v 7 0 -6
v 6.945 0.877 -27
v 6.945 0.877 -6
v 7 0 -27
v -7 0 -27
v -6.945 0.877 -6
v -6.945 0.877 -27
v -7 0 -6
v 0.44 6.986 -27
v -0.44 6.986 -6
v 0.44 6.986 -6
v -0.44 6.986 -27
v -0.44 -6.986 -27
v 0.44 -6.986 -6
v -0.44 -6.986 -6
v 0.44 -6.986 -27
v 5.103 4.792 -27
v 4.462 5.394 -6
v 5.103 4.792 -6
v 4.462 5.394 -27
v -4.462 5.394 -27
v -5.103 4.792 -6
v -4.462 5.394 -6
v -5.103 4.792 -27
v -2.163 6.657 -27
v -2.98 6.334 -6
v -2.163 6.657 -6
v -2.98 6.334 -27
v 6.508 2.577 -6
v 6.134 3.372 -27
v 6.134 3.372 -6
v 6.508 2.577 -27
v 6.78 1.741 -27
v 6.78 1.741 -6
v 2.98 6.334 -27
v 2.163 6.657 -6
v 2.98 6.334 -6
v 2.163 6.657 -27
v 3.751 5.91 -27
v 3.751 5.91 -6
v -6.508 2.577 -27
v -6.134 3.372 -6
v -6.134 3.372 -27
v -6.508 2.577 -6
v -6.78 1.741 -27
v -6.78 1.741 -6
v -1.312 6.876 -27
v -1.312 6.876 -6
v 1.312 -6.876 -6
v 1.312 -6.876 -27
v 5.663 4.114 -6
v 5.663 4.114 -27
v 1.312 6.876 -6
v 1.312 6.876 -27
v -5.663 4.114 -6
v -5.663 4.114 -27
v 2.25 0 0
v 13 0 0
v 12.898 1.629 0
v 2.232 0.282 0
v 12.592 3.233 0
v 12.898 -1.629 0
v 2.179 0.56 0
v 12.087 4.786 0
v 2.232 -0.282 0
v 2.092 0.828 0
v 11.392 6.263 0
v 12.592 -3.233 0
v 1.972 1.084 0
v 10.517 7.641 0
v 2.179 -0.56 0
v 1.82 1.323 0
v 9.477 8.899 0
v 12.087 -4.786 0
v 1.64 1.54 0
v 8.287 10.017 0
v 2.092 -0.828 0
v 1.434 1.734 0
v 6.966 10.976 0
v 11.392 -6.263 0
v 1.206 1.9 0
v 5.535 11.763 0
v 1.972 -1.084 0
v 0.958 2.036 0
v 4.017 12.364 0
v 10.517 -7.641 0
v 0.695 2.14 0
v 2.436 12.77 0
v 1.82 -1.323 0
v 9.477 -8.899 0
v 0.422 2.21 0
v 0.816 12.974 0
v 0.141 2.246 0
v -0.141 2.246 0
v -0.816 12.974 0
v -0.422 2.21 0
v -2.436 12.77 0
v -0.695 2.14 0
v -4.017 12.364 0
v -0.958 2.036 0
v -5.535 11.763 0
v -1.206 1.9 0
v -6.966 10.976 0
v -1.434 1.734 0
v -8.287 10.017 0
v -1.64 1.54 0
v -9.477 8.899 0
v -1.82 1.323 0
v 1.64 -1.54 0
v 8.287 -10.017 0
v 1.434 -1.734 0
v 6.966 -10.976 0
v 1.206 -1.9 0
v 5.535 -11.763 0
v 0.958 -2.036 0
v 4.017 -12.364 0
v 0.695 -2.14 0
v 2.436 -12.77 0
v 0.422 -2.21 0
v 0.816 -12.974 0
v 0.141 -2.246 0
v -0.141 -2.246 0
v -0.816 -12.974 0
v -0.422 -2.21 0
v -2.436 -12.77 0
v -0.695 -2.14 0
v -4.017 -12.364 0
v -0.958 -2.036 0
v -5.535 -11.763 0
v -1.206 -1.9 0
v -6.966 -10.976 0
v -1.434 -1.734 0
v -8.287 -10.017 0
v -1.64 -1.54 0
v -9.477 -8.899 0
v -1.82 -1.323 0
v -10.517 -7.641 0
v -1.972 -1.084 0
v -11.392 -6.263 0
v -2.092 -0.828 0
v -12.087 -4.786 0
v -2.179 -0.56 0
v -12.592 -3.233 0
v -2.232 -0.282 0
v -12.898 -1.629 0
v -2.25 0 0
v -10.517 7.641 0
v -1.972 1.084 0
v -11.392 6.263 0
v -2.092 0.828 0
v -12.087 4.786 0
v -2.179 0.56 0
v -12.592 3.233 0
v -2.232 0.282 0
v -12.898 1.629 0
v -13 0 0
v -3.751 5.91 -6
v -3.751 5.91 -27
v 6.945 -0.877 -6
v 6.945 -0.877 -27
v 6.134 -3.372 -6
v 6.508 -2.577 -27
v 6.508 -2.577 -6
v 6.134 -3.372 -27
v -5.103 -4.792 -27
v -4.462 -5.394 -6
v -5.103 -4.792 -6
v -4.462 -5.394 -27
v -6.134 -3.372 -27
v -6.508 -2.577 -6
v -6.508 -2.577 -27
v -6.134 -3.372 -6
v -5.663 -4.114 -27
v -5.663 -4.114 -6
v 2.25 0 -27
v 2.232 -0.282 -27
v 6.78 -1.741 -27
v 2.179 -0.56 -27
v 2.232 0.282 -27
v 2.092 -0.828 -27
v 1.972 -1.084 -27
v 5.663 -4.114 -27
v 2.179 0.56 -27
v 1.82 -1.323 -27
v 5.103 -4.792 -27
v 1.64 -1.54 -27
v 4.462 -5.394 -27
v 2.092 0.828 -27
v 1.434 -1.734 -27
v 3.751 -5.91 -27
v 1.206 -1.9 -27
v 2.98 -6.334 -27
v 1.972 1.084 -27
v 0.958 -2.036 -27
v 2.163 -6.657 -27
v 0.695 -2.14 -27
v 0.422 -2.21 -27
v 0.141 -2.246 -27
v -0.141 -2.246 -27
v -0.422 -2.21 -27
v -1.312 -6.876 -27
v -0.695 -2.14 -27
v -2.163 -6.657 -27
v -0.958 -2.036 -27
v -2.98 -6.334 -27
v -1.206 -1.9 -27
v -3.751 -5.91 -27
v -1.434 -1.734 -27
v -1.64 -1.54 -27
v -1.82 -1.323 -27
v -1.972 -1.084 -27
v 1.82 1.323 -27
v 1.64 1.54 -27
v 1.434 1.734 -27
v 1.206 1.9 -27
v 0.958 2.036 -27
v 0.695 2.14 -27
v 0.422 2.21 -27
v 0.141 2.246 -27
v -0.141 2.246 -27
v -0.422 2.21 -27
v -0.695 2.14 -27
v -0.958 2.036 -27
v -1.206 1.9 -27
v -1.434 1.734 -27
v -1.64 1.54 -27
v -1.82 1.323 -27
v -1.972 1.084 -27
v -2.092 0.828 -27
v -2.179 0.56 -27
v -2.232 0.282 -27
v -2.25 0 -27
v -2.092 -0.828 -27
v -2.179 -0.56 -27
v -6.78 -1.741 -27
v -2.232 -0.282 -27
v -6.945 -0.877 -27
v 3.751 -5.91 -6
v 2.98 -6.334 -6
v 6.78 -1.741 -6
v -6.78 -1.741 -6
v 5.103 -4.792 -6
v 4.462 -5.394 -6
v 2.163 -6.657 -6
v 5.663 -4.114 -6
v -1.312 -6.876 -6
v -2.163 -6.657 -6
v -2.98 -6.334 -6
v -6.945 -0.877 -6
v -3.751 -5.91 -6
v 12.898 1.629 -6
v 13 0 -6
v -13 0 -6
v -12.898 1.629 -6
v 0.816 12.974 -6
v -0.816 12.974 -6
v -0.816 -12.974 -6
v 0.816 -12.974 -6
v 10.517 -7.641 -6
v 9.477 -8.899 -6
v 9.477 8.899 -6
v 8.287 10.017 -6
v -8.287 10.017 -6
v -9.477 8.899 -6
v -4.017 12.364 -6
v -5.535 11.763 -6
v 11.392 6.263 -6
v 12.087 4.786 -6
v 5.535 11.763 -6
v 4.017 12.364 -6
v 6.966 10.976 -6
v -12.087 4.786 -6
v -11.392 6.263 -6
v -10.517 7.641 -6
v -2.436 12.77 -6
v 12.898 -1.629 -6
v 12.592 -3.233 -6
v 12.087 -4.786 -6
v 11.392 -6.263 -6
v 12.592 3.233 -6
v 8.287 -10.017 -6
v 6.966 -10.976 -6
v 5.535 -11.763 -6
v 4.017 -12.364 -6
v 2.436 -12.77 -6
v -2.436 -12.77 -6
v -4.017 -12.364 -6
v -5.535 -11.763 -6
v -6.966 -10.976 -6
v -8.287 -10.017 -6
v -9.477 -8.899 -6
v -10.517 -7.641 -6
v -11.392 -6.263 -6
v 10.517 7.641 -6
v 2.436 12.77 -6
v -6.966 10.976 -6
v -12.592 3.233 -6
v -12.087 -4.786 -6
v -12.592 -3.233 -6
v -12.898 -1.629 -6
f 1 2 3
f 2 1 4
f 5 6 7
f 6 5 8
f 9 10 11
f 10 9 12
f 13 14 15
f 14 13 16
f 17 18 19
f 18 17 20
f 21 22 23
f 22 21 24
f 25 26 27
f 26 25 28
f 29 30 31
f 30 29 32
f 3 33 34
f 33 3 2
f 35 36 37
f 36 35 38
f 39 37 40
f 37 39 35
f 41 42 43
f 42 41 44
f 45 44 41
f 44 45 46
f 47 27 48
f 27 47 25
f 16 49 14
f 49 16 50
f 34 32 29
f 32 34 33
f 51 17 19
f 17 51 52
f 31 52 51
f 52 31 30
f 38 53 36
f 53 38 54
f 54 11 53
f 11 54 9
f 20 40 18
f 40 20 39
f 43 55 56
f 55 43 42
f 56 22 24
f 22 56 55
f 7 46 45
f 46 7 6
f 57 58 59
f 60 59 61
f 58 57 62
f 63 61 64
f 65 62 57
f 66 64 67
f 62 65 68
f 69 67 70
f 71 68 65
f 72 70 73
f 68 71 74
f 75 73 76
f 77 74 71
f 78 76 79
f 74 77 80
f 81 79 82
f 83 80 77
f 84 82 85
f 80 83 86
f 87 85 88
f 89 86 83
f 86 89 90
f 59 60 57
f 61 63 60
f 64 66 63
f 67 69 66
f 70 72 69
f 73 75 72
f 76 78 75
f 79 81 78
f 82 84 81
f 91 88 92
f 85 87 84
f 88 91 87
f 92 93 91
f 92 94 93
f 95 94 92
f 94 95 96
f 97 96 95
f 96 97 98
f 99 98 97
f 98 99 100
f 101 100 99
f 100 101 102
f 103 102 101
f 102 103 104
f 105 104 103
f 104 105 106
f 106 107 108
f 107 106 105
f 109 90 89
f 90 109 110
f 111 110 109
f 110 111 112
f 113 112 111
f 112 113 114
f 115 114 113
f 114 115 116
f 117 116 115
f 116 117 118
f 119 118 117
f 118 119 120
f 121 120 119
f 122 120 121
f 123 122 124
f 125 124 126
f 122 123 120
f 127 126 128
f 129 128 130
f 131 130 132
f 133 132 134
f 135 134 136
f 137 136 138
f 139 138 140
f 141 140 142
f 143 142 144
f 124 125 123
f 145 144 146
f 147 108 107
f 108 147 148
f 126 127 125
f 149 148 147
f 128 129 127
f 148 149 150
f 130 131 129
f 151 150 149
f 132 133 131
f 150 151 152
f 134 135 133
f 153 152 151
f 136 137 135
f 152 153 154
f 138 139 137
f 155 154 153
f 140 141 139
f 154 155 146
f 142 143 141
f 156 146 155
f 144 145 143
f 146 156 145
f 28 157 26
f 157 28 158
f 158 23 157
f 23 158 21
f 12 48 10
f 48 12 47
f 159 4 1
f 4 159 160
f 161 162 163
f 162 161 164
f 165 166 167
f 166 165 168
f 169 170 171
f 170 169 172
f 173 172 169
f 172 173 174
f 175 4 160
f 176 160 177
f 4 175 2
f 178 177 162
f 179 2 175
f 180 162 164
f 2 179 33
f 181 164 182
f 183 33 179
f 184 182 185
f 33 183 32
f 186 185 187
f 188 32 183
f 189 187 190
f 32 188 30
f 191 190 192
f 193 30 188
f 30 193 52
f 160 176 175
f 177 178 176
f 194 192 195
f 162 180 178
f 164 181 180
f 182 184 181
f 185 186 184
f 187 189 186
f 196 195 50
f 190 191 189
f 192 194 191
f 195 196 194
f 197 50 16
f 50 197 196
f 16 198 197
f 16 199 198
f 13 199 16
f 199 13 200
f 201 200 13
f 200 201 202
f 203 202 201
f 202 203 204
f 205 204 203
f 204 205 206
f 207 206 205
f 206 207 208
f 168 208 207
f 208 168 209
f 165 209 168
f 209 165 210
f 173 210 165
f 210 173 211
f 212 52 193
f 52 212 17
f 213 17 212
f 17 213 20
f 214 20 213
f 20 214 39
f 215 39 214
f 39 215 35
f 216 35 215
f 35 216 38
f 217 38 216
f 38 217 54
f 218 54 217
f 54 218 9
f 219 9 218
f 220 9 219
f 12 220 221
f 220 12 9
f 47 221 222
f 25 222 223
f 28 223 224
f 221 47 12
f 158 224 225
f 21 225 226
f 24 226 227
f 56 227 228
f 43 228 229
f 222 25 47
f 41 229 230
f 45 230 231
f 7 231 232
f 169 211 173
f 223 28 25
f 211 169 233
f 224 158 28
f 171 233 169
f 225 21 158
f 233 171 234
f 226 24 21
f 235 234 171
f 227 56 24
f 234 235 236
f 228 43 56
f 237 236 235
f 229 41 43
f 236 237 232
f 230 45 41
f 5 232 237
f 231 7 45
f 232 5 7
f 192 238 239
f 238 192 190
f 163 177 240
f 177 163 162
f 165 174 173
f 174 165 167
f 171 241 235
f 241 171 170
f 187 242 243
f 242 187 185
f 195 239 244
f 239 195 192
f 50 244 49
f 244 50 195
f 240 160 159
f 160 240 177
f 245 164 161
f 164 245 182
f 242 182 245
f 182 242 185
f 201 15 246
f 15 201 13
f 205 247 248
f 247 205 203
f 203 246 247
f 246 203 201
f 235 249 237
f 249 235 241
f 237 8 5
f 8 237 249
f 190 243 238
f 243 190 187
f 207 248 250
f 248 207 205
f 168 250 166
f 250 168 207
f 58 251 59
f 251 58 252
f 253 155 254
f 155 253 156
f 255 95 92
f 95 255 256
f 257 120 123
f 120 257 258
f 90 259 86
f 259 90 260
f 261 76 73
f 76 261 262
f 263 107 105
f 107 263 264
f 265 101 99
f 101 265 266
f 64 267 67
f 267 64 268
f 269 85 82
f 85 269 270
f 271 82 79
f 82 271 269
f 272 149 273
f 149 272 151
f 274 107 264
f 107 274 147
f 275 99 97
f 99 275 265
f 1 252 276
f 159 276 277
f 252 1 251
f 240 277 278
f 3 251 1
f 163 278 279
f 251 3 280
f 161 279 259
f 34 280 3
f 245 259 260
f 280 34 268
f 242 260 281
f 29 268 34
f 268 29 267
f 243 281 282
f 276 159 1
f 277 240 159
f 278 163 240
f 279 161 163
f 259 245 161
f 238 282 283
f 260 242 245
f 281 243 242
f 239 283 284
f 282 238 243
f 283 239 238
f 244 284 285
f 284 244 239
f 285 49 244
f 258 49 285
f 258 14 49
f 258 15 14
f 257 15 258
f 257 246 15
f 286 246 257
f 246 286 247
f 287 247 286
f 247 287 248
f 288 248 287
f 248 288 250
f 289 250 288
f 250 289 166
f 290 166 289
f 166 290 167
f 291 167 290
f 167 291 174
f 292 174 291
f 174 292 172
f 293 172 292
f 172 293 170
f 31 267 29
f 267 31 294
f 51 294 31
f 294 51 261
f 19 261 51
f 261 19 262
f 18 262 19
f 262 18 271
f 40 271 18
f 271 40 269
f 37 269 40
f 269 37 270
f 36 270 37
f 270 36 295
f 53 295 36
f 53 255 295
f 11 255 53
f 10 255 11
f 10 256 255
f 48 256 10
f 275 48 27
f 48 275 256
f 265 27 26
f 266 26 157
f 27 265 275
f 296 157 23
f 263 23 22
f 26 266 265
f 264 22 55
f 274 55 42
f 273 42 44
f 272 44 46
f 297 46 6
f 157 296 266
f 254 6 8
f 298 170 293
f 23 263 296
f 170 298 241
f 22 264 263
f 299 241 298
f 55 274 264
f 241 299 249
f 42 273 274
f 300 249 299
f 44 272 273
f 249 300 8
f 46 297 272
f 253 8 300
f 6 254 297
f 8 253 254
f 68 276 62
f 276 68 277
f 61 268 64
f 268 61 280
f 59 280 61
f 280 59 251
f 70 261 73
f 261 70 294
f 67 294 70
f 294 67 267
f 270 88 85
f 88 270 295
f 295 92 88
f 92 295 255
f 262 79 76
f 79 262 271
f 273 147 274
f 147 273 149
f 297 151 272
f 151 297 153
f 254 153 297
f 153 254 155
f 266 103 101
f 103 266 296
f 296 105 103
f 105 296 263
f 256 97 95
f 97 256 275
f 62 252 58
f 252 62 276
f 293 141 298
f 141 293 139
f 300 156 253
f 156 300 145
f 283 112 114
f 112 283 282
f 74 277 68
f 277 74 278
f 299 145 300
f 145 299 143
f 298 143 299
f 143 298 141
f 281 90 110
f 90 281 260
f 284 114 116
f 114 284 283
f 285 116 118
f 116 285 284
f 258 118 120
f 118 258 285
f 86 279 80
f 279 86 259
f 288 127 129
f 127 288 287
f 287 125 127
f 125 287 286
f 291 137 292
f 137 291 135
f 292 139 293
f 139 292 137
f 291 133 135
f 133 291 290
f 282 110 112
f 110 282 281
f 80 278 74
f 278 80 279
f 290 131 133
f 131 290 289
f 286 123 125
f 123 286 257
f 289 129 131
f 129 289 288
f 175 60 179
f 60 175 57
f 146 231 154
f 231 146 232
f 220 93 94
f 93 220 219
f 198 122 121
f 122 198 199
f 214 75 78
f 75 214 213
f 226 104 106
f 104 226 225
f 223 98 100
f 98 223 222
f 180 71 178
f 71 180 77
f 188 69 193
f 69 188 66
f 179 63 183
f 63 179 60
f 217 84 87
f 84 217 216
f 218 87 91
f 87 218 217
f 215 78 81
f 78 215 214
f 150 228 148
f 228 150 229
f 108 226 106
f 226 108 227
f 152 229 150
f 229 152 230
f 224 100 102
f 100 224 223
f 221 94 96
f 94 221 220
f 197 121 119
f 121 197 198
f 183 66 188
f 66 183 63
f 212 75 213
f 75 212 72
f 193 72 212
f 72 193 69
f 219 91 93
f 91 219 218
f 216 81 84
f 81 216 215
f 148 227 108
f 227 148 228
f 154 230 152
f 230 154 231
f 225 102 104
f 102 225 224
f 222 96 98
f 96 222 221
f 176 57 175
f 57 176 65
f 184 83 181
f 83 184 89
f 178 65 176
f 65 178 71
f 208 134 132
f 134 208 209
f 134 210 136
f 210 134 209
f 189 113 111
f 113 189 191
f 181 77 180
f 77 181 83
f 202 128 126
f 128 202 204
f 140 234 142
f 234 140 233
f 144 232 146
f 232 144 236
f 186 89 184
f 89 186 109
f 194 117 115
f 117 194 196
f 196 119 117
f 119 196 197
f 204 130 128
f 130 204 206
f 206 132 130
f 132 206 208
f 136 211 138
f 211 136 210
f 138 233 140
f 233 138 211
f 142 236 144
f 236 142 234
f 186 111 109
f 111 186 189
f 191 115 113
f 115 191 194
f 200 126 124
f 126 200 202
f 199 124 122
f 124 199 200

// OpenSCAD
$fn = 50;


difference() {
	union() {
		translate(v = [0, 0, -27.0000000000]) {
			cylinder(h = 27, r = 7.0000000000);
		}
		translate(v = [0, 0, -6.0000000000]) {
			cylinder(h = 6, r = 13.0000000000);
		}
	}
	union() {
		#translate(v = [0, 0, -27]) {
			cylinder(h = 27, r = 2.2500000000);
		}
	}
}
